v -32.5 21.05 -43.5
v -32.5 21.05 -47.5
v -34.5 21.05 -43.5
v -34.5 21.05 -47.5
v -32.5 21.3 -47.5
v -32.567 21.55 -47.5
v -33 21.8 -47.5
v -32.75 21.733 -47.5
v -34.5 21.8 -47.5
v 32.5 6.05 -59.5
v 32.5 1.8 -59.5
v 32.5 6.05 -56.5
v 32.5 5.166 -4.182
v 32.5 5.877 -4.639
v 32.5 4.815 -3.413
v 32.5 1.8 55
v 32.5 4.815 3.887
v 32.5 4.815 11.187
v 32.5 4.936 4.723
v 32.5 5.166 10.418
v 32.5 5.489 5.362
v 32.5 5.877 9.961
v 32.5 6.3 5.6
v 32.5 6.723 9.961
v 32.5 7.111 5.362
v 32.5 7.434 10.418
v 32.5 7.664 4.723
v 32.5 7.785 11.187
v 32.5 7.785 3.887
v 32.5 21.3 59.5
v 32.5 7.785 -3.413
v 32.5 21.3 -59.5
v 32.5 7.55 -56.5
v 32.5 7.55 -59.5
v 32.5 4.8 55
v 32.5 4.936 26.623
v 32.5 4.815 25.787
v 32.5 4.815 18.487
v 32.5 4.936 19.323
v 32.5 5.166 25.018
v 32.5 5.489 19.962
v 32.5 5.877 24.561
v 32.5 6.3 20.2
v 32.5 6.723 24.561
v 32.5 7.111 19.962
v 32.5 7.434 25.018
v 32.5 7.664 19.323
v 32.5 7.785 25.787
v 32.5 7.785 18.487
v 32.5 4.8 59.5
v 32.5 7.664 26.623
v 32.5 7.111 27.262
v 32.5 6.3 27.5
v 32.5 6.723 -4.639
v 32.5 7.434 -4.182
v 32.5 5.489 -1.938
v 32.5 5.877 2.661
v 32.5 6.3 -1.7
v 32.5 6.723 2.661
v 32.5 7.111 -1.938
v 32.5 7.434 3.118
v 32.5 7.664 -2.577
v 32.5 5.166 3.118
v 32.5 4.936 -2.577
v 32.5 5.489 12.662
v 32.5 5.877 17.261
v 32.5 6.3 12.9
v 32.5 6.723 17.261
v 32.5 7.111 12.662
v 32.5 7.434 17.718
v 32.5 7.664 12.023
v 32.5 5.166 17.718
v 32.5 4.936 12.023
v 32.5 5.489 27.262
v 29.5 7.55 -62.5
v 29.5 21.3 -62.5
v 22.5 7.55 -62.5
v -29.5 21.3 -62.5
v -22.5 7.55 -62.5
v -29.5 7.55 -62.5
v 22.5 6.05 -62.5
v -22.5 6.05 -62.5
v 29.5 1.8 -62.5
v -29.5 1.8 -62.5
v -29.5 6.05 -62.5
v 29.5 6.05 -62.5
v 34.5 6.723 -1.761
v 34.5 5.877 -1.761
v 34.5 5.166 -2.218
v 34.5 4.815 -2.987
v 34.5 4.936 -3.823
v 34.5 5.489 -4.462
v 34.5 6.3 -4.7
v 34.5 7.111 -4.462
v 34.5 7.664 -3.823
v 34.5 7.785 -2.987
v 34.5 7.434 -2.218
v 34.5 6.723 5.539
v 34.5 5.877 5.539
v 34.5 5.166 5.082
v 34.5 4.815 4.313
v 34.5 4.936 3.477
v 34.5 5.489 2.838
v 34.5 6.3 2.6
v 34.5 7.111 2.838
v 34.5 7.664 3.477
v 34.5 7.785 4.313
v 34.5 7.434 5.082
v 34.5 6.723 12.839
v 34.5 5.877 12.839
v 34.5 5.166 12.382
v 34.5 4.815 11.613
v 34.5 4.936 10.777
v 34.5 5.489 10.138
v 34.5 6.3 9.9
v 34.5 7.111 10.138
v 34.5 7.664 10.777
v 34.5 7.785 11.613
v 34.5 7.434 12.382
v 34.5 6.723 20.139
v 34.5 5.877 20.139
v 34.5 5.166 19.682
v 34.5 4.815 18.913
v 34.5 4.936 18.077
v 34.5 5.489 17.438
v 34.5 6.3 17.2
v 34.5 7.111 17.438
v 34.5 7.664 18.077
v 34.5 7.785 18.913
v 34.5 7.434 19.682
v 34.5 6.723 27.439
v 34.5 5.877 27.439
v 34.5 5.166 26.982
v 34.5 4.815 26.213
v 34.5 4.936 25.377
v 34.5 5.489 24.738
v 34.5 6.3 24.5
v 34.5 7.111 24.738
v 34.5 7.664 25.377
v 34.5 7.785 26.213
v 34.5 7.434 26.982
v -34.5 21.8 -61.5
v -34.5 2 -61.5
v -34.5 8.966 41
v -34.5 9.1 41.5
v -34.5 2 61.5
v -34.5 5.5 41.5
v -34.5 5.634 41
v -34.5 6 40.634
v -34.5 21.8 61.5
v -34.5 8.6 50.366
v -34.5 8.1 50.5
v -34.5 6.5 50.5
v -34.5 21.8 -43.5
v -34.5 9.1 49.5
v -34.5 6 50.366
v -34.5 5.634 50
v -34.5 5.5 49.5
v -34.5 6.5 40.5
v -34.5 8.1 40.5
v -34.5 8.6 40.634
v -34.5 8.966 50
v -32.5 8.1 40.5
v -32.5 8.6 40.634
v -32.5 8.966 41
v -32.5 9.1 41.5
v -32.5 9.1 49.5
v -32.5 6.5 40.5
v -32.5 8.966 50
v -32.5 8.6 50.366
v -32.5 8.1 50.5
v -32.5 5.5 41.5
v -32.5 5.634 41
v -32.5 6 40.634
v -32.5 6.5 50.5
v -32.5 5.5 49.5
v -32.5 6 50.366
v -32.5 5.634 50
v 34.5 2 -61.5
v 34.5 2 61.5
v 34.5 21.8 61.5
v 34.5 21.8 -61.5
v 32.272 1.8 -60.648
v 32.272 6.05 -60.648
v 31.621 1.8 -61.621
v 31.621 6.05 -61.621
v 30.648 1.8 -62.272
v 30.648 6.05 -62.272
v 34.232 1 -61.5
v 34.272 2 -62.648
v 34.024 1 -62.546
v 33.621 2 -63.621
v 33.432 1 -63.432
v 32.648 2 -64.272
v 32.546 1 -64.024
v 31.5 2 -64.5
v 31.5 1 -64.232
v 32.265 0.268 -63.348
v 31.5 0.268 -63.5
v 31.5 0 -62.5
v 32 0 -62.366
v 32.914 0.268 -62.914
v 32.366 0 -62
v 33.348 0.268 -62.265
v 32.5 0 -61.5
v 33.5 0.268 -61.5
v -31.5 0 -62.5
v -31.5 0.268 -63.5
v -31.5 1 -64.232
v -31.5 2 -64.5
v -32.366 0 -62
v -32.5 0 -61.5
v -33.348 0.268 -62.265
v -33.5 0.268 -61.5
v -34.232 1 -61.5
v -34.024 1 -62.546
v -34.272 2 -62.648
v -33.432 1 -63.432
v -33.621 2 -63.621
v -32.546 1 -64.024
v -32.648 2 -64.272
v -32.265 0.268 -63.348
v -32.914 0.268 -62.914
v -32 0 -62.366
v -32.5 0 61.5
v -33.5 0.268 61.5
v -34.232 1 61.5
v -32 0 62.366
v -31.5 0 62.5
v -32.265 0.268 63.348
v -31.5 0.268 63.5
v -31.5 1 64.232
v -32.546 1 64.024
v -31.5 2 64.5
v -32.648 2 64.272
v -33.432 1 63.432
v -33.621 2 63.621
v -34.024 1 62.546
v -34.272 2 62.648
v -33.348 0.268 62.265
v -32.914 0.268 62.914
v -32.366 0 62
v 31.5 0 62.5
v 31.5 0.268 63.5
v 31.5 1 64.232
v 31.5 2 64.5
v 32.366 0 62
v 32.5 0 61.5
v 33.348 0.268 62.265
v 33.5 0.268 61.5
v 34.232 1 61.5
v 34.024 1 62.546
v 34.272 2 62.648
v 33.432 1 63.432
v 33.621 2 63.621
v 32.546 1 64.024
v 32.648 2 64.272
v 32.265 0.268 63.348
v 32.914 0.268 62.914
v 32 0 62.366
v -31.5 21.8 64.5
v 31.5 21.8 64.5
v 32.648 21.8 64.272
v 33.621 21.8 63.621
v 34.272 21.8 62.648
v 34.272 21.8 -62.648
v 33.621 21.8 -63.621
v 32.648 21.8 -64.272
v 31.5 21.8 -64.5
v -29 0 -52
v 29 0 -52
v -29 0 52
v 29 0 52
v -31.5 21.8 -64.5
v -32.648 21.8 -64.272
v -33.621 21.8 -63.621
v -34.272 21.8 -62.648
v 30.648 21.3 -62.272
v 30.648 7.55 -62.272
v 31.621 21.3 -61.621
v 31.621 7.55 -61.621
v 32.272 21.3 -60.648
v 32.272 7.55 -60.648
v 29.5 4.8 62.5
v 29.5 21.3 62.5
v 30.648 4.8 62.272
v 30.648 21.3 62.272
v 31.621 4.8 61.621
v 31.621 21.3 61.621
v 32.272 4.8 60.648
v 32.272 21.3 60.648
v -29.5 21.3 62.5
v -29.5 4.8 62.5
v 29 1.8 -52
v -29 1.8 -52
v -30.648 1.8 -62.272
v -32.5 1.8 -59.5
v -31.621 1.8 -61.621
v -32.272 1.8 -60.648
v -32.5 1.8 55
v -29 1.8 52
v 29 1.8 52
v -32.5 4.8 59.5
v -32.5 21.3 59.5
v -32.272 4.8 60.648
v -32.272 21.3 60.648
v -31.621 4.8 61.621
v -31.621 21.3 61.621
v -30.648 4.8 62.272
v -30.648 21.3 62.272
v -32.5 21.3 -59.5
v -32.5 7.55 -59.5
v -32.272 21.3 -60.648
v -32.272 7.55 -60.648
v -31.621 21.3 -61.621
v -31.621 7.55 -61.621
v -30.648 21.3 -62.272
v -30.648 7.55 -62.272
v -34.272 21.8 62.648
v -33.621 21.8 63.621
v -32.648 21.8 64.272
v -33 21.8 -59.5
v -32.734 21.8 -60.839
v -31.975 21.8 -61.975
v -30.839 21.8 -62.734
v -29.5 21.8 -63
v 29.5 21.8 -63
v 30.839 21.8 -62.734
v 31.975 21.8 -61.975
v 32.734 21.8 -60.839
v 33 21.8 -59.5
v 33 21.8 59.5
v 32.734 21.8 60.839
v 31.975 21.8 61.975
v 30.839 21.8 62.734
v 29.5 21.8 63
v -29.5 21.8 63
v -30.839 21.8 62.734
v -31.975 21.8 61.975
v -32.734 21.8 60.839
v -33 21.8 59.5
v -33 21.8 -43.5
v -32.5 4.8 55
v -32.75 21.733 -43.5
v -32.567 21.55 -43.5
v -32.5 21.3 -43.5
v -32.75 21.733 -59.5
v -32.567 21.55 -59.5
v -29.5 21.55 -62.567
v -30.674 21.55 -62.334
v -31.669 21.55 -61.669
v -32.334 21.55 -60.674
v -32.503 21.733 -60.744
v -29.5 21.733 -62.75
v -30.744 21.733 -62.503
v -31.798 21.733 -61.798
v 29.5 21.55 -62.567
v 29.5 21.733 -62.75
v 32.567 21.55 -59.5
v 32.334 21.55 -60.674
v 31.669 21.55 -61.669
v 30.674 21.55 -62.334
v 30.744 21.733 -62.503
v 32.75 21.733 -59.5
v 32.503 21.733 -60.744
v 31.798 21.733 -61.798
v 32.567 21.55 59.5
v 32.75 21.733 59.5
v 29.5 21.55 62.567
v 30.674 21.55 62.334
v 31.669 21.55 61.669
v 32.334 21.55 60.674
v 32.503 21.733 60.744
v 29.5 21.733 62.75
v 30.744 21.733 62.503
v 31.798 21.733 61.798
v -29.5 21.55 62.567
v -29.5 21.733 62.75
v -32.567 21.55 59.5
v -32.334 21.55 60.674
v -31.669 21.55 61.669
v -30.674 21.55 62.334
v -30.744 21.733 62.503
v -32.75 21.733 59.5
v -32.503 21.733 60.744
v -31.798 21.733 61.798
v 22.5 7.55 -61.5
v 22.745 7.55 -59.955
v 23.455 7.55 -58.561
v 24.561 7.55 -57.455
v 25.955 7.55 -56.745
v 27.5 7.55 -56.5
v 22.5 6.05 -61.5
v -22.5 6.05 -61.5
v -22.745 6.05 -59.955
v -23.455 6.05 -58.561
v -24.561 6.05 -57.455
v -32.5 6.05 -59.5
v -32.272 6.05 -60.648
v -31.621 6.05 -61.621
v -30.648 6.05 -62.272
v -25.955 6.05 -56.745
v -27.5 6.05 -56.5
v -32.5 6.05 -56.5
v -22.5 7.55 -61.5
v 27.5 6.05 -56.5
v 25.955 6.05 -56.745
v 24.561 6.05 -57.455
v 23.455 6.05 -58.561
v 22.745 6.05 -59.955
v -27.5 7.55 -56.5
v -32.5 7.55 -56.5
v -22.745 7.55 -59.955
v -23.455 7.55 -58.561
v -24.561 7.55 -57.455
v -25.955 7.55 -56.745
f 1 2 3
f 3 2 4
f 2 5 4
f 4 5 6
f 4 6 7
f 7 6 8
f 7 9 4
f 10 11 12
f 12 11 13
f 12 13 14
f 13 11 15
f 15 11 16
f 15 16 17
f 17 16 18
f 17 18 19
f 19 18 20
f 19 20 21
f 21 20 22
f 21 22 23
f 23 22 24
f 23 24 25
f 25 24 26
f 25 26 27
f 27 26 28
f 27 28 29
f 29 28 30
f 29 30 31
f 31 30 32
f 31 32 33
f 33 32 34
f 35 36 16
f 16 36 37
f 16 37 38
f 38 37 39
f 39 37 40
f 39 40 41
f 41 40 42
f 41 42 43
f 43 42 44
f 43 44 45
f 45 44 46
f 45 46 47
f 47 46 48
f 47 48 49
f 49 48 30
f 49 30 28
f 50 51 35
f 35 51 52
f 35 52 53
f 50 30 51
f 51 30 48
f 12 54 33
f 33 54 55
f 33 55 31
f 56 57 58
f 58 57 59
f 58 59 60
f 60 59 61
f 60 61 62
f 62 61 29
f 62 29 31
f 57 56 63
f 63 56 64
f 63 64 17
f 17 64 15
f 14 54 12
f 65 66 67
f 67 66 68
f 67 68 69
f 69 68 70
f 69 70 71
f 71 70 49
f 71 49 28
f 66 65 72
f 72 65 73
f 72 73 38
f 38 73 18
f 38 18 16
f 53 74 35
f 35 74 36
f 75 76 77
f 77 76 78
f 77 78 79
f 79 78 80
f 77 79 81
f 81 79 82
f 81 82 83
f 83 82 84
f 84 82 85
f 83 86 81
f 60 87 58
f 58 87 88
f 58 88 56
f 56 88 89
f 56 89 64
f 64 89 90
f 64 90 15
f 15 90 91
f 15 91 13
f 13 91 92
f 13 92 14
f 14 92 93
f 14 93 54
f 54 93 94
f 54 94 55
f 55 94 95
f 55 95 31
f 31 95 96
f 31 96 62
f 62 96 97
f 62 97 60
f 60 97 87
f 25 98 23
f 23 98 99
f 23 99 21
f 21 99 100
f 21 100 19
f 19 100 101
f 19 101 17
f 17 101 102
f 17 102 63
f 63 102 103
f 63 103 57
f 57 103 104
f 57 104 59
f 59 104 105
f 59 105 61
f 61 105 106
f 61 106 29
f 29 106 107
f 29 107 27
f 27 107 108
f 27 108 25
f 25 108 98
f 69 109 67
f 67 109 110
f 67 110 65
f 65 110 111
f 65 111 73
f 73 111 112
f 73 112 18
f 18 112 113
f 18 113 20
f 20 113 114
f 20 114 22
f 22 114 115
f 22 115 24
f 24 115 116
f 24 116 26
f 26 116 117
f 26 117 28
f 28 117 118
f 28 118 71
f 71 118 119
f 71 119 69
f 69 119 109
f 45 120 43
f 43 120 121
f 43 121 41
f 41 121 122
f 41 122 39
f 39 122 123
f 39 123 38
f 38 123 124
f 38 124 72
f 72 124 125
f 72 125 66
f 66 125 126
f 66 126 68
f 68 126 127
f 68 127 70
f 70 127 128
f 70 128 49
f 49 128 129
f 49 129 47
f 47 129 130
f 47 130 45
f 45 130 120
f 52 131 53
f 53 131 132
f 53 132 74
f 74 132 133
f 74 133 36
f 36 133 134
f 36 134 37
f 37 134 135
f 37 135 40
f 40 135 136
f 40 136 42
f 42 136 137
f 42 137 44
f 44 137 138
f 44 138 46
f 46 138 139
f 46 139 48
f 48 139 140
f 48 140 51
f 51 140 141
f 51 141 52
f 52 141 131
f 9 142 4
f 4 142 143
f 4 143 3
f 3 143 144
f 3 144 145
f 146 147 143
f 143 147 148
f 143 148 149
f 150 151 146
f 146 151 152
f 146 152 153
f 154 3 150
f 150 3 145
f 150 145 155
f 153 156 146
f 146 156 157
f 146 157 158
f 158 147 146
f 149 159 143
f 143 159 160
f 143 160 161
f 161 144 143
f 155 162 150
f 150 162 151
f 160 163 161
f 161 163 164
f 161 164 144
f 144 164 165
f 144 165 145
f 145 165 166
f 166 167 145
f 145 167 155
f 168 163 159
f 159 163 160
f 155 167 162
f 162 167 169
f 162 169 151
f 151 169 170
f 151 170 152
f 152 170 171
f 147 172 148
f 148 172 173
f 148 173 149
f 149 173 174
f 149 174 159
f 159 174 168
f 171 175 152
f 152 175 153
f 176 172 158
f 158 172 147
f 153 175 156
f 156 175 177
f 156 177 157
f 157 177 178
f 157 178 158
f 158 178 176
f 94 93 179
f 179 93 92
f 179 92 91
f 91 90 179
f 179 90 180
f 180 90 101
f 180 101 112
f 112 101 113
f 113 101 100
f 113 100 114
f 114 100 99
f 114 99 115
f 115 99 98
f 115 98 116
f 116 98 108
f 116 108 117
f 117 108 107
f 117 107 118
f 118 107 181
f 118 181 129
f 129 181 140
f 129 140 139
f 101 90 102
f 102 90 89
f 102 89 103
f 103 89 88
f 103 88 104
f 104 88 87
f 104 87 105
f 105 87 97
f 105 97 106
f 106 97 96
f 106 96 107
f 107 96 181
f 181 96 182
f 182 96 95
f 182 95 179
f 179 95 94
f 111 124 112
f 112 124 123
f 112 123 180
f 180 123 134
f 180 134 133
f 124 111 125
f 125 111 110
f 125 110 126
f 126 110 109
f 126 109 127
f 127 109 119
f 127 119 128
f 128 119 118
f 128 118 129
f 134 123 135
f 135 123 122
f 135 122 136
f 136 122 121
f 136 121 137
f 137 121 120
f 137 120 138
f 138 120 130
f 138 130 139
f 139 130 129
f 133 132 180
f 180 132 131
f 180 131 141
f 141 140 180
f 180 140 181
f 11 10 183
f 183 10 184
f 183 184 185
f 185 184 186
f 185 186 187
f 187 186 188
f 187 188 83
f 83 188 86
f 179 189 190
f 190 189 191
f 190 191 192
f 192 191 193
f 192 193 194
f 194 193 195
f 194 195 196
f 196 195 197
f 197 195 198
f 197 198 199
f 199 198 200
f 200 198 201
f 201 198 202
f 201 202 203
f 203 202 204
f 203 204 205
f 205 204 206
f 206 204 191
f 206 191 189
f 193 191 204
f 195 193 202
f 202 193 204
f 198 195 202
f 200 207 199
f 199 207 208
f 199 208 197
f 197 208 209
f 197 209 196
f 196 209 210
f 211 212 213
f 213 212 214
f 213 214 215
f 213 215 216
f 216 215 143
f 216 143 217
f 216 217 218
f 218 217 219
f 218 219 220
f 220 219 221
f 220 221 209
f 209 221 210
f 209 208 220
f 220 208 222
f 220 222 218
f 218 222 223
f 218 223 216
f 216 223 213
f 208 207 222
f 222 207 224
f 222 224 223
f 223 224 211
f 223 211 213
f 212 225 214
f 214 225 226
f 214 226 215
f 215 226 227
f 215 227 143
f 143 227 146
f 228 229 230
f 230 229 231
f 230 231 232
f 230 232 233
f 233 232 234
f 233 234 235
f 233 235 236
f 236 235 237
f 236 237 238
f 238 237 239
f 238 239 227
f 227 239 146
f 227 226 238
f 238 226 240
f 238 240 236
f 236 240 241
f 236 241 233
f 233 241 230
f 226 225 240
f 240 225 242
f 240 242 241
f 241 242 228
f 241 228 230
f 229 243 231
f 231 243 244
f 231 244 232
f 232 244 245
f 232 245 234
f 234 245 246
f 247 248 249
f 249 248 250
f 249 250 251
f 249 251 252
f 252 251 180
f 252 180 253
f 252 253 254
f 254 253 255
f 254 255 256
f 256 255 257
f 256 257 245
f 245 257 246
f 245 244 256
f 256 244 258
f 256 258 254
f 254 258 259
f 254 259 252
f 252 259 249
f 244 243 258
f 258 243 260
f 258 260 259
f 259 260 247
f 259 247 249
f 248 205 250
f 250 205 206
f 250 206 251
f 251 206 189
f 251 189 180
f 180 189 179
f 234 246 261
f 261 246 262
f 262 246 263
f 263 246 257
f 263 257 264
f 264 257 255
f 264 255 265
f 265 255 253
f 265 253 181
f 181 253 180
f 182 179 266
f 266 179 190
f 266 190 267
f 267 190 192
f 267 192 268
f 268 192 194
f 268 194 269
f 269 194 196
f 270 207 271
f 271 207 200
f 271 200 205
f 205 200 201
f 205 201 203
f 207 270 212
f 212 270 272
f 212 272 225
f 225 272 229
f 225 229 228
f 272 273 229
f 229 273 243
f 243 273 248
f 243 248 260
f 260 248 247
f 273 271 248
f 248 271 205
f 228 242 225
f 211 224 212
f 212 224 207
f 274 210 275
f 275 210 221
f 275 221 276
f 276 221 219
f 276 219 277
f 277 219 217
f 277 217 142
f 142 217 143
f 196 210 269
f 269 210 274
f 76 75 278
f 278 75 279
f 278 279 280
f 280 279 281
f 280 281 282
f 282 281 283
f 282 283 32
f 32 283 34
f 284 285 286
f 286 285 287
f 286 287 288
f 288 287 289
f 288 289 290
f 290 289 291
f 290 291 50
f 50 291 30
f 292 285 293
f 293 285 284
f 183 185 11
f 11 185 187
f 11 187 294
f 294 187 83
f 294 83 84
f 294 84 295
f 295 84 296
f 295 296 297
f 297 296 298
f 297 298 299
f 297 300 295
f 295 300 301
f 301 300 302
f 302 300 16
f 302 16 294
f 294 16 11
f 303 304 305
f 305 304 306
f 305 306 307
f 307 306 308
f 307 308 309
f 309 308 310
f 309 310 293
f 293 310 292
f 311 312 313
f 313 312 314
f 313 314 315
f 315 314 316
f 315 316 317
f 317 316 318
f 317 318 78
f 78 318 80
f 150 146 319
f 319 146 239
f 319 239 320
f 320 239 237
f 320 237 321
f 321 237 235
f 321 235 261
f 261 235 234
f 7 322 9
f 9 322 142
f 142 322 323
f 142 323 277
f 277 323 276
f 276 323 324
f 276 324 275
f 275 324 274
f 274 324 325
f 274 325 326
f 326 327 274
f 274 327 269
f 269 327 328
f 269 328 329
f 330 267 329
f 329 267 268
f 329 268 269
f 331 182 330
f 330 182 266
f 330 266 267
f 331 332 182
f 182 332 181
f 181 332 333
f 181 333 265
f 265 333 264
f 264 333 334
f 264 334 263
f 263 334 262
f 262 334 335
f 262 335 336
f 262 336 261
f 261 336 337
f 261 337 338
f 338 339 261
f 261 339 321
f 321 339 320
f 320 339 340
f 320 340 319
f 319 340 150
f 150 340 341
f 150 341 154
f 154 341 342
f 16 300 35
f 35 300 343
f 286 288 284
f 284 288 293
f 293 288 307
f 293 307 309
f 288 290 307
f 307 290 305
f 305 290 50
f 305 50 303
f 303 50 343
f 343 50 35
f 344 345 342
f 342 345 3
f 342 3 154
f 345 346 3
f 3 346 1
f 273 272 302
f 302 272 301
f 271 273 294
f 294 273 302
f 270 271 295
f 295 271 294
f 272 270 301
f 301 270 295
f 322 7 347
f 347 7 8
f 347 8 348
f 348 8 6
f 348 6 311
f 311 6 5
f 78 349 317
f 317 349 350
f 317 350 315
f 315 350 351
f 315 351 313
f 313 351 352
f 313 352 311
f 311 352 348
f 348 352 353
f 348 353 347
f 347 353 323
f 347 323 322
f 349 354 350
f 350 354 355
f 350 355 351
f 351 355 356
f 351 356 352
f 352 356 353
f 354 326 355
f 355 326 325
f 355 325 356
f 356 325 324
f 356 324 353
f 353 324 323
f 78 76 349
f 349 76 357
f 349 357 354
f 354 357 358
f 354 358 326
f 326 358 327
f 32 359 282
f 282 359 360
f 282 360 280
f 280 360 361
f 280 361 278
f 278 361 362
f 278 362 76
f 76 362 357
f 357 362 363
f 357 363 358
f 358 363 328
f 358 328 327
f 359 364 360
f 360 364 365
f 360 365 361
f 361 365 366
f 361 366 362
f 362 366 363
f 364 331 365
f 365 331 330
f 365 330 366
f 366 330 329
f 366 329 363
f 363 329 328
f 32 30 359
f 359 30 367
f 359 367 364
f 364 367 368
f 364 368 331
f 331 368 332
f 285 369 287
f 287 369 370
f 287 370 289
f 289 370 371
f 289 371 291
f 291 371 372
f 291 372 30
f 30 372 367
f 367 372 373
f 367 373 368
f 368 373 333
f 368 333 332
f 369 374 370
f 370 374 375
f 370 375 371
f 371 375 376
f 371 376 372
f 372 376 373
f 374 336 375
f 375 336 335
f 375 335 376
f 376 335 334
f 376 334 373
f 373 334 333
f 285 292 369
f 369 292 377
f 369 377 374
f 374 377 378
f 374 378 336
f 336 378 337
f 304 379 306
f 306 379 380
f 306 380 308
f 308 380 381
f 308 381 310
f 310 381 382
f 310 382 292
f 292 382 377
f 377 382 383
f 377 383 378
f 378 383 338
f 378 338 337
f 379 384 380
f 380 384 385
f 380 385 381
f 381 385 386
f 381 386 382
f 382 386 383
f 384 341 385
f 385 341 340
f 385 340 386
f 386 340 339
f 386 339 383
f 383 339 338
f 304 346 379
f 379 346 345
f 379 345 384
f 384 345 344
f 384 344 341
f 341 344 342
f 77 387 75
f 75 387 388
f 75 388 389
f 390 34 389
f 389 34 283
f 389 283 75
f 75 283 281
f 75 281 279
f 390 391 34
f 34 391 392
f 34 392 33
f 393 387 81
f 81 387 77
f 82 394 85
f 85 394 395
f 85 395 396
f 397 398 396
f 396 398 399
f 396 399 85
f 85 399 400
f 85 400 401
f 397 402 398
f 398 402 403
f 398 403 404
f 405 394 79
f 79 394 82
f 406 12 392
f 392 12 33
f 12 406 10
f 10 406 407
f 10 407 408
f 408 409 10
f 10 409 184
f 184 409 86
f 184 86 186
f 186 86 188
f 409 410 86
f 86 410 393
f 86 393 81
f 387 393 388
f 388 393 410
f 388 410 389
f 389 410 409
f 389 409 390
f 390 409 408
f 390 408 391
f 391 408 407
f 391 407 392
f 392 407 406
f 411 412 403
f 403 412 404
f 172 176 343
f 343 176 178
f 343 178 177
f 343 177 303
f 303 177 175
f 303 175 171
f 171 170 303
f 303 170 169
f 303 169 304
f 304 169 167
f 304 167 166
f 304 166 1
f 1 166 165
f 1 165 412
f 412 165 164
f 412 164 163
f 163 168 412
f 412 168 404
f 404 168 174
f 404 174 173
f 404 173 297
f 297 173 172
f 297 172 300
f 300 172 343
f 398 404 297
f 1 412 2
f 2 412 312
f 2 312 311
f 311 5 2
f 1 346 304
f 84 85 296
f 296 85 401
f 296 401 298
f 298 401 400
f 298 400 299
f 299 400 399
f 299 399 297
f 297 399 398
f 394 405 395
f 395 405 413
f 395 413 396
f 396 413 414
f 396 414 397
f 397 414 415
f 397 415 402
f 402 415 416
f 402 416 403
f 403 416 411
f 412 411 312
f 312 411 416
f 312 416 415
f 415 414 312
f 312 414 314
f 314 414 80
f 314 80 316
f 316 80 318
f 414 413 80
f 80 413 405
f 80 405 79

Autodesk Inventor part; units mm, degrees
ref_plane "YZ Plane" through (0, 0, 0) normal (1, 0, 0) x (0, 1, 0)
ref_plane "XZ Plane" through (0, 0, 0) normal (0, 1, 0) x (-1, 0, 0)
ref_plane "XY Plane" through (0, 0, 0) normal (0, 0, 1) x (1, 0, 0)
sketch "Sketch1" plane through (0, 0, 0) normal (0, 1, 0) x (-1, 0, 0)
  line L0 (34.5, 64.5) -> (-34.5, 64.5)
  line L1 (-34.5, 64.5) -> (-34.5, -64.5)
  line L2 (-34.5, -64.5) -> (34.5, -64.5)
  line L3 (34.5, -64.5) -> (34.5, 64.5)
  line L4 (34.5, 64.5) -> (-34.5, -64.5) construction
  line L5 (-34.5, 64.5) -> (34.5, -64.5) construction
  point P0 (0, 0)
  dimension "d0" = 69
  dimension "d1" = 129
extrude "Extrusion1" add sketch "Sketch1" along normal blind 1.8
sketch "Sketch2" plane through (0, 1.8, 0) normal (0, 1, 0) x (1, 0, 0)
  line L0 (-29, -52) -> (29, -52)
  line L1 (29, -52) -> (29, 52)
  line L2 (29, 52) -> (-29, 52)
  line L3 (-29, 52) -> (-29, -52)
  line L4 (-29, -52) -> (29, 52) construction
  line L5 (29, -52) -> (-29, 52) construction
  point P0 (0, 0)
  dimension "d4" = 104
  dimension "d5" = 58
extrude "Extrusion2" cut sketch "Sketch2" against normal up to next
sketch "Sketch3" plane through (0, 1.8, 0) normal (0, 1, 0) x (1, 0, 0)
  line L0 (34.5, 64.5) -> (-34.5, 64.5) projected
  line L1 (-34.5, 64.5) -> (34.5, 64.5)
  line L2 (34.5, 64.5) -> (34.5, -64.5)
  line L3 (34.5, -64.5) -> (-34.5, -64.5)
  line L4 (-34.5, -64.5) -> (-34.5, 64.5)
  line L5 (-32.5, 62.5) -> (32.5, 62.5)
  line L6 (32.5, 62.5) -> (32.5, -62.5)
  line L7 (32.5, -62.5) -> (-32.5, -62.5)
  line L8 (-32.5, -62.5) -> (-32.5, 62.5)
  point P0 (0, 0)
  dimension "d8" = 2
  dimension "d9" = 2
  dimension "d10" = 2
  dimension "d11" = 2
extrude "Extrusion3" add sketch "Sketch3" along normal blind 20
sketch "Sketch4" plane through (0, 1.8, 0) normal (0, 1, 0) x (1, 0, 0)
  line L0 (32.5, -62.5) -> (-32.5, -62.5) projected
  line L1 (-32.5, 62.5) -> (-32.5, -62.5) projected
  line L2 (32.5, -62.5) -> (-32.5, -62.5)
  line L3 (-32.5, -62.5) -> (-32.5, -55)
  line L4 (-32.5, -55) -> (32.5, -55)
  line L5 (32.5, -55) -> (32.5, -62.5)
  line L6 (32.5, 62.5) -> (-32.5, 62.5) projected
  dimension "d36" = 117.5
extrude "Extrusion4" add sketch "Sketch4" along normal blind 3
sketch "Sketch5" plane through (0, 1.8, 0) normal (0, 1, 0) x (1, 0, 0)
  line L0 (-32.5, -62.5) -> (-32.5, 62.5) projected
  line L1 (-32.5, -62) -> (32.5, -62)
  line L2 (32.5, 62.5) -> (32.5, -62.5) projected
  line L3 (29, -52) -> (-29, -52) projected
  point P0 (0, 0)
  dimension "d17" = 10
fillet "Fillet1" radius 3 8 edges at (-32.5, 13.3, 62.5) (-34.5, 10.9, 64.5) (34.5, 10.9, 64.5) (32.5, 13.3, 62.5) (-32.5, 11.8, -62.5) (32.5, 11.8, -62.5) (34.5, 10.9, -64.5) (-34.5, 10.9, -64.5)
fillet "Fillet2" radius 2 8 edges at (33.6213, 0, -63.6213) (0, 0, -64.5) (-33.6213, 0, -63.6213) (-34.5, 0, 0) (-33.6213, 0, 63.6213) (0, 0, 64.5) (33.6213, 0, 63.6213) (34.5, 0, 0)
sketch "Sketch6" plane through (-34.5, 21.8, -61.5) normal (-1, 0, 0) x (0, 0, 1)
  line L0 (6.5, -12) -> (6.5, -15) projected
  line L1 (6.5, -15) -> (6.5, -12) projected
  line L2 (103, -12.7) -> (111, -12.7)
  line L3 (112, -13.7) -> (112, -15.3)
  line L4 (111, -16.3) -> (103, -16.3)
  line L5 (102, -15.3) -> (102, -13.7)
  line L6 (9.5, -20) -> (113.5, -20) projected
  line L7 (113.5, -20) -> (9.5, -20) projected
  line L8 (116.5, -20) -> (2, -20) projected
  line L9 (2, -20) -> (116.5, -20) projected
  arc A0 (103, -12.7) -> (102, -13.7) centre (103, -13.7) ccw
  arc A1 (102, -15.3) -> (103, -16.3) centre (103, -15.3) ccw
  arc A2 (112, -13.7) -> (111, -12.7) centre (111, -13.7) ccw
  arc A3 (111, -16.3) -> (112, -15.3) centre (111, -15.3) ccw
  line L10 (2, -20) -> (-1, -20) projected
  line L11 (-1, -20) -> (2, -20) projected
  line L12 (116.5, -20) -> (116.5, -17)
  point P0 (61.5, -21.8)
  point P1 (102, -12.7)
  point P2 (112, -16.3)
  point P3 (112, -12.7)
  point P4 (121, -15)
  point P5 (112, -14.5)
  point P6 (107, -16.3)
  dimension "d20" = 10
  dimension "d21" = 3.6
  dimension "d25" = 1
  dimension "d38" = 4.5
  dimension "d39" = 3.7
extrude "Extrusion5" cut sketch "Sketch6" against normal up to next
sketch "Sketch7" plane through (34.5, 21.8, 61.5) normal (1, 0, 0) x (0, 0, -1)
  line L0 (116.5, -12) -> (116.5, -15) projected
  line L1 (6.5, -20) -> (121, -20) projected
  circle A0 centre (35.5, -15.5) radius 1.5
  line L2 (6.5, -20) -> (6.5, -17) projected
  point P0 (61.5, -21.8)
  point P1 (2, -15)
  point P2 (6.5, -18.5)
  dimension "d29" = 4.5
  dimension "d30" = 3
  dimension "d37" = 29
extrude "Extrusion6" cut sketch "Sketch7" against normal up to next
pattern_linear "Rectangular Pattern1" count 5 spacing 7.3 along (0, 0, -1) of "Extrusion6"
sketch "Sketch8" plane through (0, 0, 0) normal (0, -1, 0) x (1, 0, 0)
  point P0 (0, 0)
sketch "Sketch9" plane through (-34.5, 21.8, -61.5) normal (-1, 0, 0) x (0, 0, 1)
  line L0 (123, 0) -> (0, 0) projected
  line L1 (14, 0) -> (18, 0)
  line L2 (18, 0) -> (18, -0.75)
  line L3 (18, -0.75) -> (14, -0.75)
  line L4 (14, -0.75) -> (14, 0)
  point P0 (61.5, -21.8)
  point P1 (-1, 0)
  point P2 (14, -0.375)
  point P3 (18, 0)
  dimension "d40" = 0.75
  dimension "d41" = 4
  dimension "d42" = 15
extrude "Extrusion7" cut sketch "Sketch9" against normal up to surface (2 mm away)
fillet "Fillet3" radius 0.5 5 edges at (0, 21.8, 62.5) (-32.5, 21.8, 8) (0, 21.8, -62.5) (-32.5, 21.8, -53.5) (32.5, 21.8, 0)
sketch "Sketch10" plane through (-29.5, 1.8, -62.5) normal (0, 0, 1) x (1, 0, 0)
  line L0 (-3.2949, 5.75) -> (63.1479, 5.75)
  line L1 (63.1479, 5.75) -> (63.1479, 4.25)
  line L2 (63.1479, 4.25) -> (-3.2949, 4.25)
  line L3 (-3.2949, 4.25) -> (-3.2949, 5.75)
  line L4 (59, 0) -> (0, 0) projected
  line L5 (7, 5.75) -> (7, 4.25)
  line L6 (52, 5.75) -> (52, 4.25)
  line L7 (-3, 19.5) -> (-3, 0) projected
  line L8 (62, 0) -> (62, 19.5) projected
  point P0 (29.5, -1.8)
  point P1 (52, 5)
  point P2 (62, 4.25)
  point P3 (62, 5.75)
  point P4 (-3, 5.75)
  point P5 (-3, 4.25)
  dimension "d46" = 4.25
  dimension "d47" = 1.5
  dimension "d48" = 10
  dimension "d49" = 10
extrude "Extrusion8" add sketch "Sketch10" along normal blind 6 contours L5 L2 L7 L0 | L0 L8 L2 L6
fillet "Fillet4" radius 5 2 edges at (-22.5, 6.8, -56.5) (22.5, 6.8, -56.5)
